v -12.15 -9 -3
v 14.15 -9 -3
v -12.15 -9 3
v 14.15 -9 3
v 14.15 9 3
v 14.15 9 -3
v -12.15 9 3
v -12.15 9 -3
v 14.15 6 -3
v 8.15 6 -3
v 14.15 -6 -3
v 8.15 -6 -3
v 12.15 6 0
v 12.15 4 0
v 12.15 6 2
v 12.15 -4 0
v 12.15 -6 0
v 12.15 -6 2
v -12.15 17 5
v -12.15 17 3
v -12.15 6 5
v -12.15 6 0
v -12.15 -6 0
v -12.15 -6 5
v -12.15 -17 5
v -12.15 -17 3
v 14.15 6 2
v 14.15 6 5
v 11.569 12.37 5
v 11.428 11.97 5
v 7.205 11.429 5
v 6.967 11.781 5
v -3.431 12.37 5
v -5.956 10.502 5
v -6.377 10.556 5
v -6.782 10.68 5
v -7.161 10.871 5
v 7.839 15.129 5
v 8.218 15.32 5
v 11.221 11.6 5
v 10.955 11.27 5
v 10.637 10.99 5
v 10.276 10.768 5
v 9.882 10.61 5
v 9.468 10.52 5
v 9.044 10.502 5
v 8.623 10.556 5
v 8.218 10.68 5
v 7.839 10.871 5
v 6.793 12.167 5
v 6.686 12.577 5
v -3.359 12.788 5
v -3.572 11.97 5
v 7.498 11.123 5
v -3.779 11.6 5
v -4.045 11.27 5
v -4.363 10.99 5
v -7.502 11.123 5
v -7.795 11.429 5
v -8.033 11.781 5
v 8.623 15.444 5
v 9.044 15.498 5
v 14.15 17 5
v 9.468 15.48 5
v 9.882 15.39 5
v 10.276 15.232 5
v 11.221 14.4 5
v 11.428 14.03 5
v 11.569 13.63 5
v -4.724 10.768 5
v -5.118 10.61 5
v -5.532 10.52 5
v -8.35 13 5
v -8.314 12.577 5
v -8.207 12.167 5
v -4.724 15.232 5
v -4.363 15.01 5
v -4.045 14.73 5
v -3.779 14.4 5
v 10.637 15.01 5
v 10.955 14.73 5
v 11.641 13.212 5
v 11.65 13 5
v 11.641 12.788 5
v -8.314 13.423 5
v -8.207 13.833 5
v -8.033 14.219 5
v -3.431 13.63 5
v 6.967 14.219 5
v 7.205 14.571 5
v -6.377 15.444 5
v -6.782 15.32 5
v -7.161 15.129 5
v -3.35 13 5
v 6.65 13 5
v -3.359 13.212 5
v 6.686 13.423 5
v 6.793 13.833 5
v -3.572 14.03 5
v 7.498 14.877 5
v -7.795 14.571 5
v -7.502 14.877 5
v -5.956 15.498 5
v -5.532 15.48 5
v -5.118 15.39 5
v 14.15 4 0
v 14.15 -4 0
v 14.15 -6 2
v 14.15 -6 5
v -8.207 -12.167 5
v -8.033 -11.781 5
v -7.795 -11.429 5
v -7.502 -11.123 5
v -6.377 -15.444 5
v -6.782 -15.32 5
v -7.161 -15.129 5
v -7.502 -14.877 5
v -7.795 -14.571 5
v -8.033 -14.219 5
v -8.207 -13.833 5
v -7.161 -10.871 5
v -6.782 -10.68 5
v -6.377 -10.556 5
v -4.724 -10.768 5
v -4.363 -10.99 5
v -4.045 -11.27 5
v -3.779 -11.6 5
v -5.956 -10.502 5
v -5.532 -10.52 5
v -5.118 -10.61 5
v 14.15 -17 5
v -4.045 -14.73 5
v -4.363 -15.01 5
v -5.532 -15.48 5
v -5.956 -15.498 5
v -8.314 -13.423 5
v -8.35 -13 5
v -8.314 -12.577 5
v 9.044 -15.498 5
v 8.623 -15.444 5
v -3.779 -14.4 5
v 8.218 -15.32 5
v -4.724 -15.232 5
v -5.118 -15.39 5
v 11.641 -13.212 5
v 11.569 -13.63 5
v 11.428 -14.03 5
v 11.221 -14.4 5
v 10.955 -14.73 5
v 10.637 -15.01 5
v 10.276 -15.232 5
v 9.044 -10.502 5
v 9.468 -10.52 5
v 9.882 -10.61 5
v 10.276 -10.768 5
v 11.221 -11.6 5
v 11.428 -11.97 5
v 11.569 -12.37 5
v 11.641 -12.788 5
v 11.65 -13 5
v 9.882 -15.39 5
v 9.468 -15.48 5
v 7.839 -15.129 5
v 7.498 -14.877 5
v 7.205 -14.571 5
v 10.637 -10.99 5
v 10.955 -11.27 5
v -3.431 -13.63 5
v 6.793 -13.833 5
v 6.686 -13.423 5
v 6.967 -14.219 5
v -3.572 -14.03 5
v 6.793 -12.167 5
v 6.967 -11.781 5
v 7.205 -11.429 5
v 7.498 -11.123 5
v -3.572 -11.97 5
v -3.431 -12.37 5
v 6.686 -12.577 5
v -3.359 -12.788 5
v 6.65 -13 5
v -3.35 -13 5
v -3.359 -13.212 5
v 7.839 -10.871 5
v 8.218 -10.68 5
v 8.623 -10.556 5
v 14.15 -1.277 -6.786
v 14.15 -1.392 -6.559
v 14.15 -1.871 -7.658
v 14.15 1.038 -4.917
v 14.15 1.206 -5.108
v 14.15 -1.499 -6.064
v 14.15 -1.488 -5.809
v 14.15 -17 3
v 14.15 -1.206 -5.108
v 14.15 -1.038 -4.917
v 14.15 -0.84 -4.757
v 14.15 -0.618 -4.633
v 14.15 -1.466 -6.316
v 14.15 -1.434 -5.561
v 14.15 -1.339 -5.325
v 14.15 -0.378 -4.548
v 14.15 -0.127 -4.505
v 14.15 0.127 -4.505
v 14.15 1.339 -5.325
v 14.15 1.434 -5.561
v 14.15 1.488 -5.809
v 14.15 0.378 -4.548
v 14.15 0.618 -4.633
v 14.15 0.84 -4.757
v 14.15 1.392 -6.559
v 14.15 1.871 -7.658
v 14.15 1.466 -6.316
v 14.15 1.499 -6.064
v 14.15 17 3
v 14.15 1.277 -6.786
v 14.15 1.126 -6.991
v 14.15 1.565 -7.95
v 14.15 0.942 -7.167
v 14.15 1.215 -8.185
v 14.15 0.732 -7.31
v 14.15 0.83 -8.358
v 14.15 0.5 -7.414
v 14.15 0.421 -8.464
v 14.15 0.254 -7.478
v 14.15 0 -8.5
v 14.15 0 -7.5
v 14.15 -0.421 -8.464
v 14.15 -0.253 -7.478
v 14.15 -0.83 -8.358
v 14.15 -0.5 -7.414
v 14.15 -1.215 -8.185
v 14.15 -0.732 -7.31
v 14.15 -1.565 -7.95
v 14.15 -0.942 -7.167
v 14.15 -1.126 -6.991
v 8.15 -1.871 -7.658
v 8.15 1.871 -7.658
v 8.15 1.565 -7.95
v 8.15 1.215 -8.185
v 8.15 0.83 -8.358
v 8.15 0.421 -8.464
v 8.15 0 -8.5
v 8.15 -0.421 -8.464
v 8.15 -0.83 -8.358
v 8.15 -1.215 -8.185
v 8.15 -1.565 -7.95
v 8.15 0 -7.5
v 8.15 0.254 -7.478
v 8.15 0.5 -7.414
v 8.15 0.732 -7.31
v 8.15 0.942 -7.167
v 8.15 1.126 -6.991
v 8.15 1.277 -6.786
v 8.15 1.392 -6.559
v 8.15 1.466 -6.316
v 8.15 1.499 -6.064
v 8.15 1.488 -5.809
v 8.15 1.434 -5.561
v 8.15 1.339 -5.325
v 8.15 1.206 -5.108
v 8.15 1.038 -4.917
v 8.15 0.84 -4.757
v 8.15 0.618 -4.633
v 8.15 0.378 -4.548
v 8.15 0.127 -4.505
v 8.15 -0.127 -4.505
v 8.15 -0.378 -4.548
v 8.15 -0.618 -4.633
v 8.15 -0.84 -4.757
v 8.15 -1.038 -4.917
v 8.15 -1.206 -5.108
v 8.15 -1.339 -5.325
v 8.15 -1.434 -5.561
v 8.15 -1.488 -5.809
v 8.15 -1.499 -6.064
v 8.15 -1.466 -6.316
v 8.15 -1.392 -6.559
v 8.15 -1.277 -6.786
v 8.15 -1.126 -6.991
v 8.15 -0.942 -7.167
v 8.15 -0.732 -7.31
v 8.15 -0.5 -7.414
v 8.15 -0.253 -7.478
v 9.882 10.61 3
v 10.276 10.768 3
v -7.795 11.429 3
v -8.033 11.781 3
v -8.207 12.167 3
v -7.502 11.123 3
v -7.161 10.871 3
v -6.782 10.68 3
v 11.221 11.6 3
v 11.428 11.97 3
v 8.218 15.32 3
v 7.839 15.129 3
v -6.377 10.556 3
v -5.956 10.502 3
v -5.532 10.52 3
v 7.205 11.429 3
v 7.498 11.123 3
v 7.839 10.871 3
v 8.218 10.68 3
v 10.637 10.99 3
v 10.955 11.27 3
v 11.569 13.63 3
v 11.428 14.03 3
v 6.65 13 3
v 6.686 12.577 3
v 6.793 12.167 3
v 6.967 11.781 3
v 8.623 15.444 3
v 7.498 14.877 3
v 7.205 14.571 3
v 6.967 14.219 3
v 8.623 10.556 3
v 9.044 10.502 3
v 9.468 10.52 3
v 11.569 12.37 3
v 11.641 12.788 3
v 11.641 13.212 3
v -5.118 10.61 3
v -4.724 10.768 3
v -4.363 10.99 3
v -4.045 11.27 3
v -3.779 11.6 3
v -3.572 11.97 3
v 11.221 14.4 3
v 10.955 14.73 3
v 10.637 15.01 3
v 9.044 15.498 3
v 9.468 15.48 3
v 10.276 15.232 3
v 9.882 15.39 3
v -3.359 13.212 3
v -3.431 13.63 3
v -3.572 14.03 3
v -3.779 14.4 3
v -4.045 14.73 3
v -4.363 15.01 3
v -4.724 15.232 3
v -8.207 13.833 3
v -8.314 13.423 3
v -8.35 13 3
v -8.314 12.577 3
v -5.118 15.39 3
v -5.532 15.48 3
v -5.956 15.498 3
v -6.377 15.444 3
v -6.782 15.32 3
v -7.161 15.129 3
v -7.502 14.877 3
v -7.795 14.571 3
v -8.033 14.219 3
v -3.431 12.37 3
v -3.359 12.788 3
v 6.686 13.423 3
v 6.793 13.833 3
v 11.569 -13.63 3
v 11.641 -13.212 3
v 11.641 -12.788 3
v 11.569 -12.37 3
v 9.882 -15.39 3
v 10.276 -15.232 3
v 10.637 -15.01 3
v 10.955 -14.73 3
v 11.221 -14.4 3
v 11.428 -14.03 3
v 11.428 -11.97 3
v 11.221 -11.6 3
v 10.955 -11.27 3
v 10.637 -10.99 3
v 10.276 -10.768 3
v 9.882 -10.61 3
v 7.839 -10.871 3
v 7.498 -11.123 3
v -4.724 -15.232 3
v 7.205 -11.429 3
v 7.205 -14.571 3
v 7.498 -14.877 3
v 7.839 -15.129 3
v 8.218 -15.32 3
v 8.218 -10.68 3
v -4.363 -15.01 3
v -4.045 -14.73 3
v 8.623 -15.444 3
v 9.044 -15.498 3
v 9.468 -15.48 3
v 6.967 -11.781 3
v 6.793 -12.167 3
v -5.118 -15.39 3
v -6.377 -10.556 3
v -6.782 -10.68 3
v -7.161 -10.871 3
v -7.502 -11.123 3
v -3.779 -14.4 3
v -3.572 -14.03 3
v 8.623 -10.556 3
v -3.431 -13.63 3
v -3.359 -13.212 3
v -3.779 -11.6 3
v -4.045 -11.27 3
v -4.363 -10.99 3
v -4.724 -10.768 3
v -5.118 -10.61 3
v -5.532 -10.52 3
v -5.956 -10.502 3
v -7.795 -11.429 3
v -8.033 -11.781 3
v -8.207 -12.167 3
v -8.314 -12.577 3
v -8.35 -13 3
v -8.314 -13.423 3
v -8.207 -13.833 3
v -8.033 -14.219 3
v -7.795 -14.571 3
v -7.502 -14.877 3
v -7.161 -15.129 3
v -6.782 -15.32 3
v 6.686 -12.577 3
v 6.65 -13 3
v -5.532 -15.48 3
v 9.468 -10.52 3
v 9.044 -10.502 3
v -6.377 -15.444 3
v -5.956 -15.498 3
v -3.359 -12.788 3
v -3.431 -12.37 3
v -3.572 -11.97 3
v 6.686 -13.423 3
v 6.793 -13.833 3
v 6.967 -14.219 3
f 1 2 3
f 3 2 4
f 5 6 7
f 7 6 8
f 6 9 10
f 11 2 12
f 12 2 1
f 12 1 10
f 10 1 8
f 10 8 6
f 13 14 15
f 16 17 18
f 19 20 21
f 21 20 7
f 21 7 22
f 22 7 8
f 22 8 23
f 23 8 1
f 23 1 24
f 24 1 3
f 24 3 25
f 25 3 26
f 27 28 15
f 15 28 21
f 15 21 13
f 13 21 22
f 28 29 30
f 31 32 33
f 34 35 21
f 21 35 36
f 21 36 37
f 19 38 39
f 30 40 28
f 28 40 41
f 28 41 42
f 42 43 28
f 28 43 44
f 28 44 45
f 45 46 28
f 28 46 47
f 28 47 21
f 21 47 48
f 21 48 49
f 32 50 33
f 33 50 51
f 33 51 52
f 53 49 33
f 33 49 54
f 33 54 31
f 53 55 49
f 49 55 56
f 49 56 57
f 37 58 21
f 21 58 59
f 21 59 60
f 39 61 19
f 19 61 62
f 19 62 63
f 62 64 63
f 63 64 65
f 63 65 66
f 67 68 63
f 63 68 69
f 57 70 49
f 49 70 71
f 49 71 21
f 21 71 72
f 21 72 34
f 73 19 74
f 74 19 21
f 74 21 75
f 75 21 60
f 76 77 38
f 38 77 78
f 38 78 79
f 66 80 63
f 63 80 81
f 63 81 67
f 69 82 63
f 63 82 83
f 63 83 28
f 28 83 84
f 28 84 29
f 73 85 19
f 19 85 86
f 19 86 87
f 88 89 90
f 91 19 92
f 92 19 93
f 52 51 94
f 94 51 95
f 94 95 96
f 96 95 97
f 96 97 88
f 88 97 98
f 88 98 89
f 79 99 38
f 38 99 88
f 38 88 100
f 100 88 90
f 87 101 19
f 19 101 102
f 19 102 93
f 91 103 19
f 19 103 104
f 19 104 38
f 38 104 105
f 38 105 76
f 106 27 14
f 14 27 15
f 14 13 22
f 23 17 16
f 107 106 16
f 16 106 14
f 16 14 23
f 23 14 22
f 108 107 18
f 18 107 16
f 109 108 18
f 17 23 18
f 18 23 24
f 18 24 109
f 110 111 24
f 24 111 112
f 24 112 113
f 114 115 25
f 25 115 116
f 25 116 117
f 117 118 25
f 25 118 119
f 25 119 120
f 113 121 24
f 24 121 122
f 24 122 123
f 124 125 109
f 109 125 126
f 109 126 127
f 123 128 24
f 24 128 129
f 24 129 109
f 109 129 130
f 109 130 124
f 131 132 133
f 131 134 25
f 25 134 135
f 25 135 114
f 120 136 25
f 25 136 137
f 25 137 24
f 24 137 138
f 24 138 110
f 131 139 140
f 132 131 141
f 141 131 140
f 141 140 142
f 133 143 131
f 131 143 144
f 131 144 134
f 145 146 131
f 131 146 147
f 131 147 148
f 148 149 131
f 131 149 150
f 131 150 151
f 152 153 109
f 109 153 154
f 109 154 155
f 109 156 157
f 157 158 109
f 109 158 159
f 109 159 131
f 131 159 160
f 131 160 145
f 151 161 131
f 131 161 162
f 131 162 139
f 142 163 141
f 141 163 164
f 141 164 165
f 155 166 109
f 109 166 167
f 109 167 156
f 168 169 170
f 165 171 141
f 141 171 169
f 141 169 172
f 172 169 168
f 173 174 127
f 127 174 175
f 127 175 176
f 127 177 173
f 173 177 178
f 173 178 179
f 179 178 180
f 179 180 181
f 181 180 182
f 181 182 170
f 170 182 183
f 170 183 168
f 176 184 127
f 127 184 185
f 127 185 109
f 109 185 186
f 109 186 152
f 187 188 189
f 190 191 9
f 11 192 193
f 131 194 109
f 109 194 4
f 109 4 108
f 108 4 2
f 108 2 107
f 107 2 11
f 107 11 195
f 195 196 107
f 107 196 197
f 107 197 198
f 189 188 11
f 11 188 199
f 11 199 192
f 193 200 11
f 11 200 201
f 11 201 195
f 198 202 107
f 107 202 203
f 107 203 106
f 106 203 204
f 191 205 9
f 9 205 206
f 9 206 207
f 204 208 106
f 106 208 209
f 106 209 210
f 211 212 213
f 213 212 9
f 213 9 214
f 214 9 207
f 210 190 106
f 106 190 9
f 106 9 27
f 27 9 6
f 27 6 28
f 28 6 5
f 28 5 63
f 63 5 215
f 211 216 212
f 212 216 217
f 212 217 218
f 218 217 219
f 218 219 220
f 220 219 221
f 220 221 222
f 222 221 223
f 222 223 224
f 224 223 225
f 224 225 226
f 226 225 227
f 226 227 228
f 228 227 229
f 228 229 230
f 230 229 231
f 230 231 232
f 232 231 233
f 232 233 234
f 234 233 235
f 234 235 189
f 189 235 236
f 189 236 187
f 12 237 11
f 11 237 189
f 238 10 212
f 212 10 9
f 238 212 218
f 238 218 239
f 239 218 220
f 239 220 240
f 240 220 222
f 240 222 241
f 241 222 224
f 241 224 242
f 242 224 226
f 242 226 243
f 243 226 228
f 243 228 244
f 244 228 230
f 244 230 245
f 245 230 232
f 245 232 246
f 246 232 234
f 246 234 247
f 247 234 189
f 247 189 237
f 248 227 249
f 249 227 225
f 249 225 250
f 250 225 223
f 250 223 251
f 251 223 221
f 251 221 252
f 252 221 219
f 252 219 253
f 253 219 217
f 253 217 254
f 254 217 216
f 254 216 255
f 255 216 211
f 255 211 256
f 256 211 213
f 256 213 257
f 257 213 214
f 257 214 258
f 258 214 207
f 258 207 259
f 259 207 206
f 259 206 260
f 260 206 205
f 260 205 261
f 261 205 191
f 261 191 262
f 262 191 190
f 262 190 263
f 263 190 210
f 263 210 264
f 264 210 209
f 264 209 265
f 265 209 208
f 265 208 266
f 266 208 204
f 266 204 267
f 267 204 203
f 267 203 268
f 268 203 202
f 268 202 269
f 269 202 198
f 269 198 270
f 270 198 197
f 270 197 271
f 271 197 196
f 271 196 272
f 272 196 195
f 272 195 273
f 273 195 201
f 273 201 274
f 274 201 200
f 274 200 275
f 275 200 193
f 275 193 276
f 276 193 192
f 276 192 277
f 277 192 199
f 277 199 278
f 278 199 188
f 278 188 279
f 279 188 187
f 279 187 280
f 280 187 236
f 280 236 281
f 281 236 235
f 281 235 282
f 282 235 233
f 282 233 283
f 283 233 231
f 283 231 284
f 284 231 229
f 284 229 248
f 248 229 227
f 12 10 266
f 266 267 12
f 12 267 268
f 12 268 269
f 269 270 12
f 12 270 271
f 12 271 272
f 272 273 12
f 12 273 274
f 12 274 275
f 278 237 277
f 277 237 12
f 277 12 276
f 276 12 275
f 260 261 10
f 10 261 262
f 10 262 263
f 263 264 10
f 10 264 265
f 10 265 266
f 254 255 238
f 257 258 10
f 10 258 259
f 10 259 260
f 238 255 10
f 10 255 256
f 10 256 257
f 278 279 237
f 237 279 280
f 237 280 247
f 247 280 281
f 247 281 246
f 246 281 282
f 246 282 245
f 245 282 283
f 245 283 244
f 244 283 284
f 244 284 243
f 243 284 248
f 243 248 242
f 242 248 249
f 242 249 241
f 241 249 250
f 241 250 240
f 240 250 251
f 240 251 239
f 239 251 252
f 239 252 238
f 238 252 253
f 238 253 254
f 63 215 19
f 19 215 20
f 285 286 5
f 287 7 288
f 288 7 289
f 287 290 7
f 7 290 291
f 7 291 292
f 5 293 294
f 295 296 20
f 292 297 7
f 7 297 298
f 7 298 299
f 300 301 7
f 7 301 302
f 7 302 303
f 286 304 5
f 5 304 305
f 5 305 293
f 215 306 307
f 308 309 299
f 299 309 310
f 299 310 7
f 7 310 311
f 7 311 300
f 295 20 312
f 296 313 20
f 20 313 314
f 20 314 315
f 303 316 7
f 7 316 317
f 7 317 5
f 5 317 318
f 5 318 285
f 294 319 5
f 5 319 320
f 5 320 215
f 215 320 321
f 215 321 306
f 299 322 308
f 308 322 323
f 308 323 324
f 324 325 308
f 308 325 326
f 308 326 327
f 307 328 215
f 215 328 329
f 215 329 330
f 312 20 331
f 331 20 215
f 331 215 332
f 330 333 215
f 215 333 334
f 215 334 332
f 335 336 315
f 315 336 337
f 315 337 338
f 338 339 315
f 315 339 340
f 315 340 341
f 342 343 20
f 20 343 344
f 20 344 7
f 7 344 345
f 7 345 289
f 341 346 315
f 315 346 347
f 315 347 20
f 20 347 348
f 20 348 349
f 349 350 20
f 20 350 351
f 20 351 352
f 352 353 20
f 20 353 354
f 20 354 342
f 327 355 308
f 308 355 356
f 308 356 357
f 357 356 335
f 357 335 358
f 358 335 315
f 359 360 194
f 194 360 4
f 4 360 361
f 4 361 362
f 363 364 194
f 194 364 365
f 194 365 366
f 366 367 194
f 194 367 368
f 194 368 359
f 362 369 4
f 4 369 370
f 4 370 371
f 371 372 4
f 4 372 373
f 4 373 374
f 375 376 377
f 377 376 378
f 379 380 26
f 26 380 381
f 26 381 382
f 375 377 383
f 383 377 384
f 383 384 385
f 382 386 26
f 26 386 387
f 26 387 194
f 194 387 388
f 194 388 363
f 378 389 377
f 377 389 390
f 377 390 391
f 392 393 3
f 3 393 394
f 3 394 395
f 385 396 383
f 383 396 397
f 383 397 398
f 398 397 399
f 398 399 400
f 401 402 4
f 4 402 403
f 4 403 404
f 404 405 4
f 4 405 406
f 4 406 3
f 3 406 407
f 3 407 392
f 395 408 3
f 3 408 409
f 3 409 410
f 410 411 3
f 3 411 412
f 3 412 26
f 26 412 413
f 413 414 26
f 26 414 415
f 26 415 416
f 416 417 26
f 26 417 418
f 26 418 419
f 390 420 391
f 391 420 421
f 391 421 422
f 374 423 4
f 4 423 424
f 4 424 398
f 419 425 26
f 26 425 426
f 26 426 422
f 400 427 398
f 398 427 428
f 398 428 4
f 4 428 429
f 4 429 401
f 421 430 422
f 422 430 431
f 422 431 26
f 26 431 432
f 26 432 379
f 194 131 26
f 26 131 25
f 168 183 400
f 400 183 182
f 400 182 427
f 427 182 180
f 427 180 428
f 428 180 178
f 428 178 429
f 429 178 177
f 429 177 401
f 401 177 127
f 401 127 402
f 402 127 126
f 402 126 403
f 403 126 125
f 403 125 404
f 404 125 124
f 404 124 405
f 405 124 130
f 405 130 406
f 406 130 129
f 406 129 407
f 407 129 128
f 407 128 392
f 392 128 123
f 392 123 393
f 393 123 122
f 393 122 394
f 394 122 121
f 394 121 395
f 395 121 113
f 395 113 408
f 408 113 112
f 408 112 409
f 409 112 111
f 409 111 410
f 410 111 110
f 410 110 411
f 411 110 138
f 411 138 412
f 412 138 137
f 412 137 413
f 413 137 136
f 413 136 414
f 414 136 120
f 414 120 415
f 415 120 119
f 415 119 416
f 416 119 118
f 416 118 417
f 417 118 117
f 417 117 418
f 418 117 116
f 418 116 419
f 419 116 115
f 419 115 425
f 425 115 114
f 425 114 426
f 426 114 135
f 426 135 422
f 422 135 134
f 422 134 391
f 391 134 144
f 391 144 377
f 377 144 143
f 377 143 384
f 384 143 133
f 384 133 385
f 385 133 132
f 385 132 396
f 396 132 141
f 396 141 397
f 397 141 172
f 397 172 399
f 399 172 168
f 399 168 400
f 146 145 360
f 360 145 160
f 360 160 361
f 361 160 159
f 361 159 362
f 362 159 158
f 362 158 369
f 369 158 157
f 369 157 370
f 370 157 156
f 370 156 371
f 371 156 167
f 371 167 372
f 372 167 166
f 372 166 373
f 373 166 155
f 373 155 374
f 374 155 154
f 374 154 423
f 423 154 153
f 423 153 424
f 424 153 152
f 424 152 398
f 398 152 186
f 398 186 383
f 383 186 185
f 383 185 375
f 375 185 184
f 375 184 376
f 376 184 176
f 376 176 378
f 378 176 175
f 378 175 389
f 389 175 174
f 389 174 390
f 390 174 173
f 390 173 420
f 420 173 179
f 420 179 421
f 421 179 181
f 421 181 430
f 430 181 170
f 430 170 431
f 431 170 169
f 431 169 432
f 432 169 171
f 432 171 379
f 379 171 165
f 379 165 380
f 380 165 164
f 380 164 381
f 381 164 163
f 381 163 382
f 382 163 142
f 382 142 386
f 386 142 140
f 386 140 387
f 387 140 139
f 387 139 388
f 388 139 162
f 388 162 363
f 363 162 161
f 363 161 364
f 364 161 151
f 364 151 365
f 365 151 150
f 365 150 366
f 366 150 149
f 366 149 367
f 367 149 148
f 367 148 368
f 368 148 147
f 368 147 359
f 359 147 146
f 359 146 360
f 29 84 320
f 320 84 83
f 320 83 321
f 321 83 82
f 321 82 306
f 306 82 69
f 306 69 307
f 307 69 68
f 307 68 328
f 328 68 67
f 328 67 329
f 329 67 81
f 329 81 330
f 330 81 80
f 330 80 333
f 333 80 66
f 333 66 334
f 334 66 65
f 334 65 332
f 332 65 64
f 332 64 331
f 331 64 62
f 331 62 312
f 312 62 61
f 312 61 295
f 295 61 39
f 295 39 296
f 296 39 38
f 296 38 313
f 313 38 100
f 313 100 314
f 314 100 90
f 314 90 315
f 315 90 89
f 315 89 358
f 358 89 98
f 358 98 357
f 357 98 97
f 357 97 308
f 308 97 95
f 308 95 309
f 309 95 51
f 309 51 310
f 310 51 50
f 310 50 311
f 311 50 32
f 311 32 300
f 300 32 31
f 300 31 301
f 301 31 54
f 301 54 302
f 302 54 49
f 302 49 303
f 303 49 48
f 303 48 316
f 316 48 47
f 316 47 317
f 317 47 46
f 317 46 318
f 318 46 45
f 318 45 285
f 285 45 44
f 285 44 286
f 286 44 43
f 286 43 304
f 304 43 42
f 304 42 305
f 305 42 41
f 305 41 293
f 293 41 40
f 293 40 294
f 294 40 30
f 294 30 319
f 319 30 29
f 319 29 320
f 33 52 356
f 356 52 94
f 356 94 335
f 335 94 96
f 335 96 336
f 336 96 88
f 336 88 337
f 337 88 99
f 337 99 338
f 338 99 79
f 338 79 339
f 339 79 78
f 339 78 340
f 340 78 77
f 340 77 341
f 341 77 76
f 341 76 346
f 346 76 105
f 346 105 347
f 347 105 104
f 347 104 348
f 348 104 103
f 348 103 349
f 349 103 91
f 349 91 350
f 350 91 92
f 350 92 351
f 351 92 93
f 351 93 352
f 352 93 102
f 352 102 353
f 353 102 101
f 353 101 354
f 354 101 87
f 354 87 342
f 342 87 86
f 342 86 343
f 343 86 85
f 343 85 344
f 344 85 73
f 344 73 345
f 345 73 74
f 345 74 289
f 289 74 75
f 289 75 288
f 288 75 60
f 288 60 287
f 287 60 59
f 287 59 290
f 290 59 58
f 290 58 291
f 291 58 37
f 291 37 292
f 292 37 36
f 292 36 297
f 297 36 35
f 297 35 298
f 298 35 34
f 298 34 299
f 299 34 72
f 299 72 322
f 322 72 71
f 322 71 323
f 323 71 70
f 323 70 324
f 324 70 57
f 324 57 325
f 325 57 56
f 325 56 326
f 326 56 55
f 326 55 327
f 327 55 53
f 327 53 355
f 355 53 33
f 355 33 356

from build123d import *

# Parameters (mm, degrees)
SKETCH_1_W          = 24.3
SKETCH_1_H          = 3
EXTRUDE_1_DEPTH     = 5
EXTRUDE_1_2_DEPTH   = 5
SKETCH_2_W          = 24.3
SKETCH_2_H          = 18
EXTRUDE_2_DEPTH     = 3
EXTRUDE_3_DEPTH     = 2
EXTRUDE_5_DEPTH     = 6
SKETCH_7_W          = 2
SKETCH_7_H          = 8
EXTRUDE_6_DEPTH     = 26.3
SKETCH_8_R          = 2.5
CUT_EXTRUDE_2_DEPTH = 2


with BuildPart() as part:
    # Эскиз1 → Бобышка-Вытянуть1 (new body)
    with BuildSketch(Plane.XY):
        with Locations((0, 7.5)):
            Rectangle(SKETCH_1_W, SKETCH_1_H)
    extrude(amount=EXTRUDE_1_DEPTH)



with BuildPart() as body_2:
    # Эскиз1 → Extrude 1 2 (new body)
    with BuildSketch(Plane.XY):
        with Locations((0, -7.5)):
            Rectangle(SKETCH_1_W, SKETCH_1_H)
    extrude(amount=EXTRUDE_1_2_DEPTH)


with BuildPart() as body_3:
    # Эскиз2 → Бобышка-Вытянуть2 (new body)
    with BuildSketch(Plane(origin=(0, 0, 0), x_dir=(-1, 0, 0), z_dir=(0, 0, -1))):
        Rectangle(SKETCH_2_W, SKETCH_2_H)
    extrude(amount=EXTRUDE_2_DEPTH)


with BuildPart() as part_1:
    add(part.part)

    add(body_2.part)  # Бобышка-Вытянуть3 merges body 2

    add(body_3.part)  # Бобышка-Вытянуть3 merges body 3
    # Эскиз3 → Бобышка-Вытянуть3 (add)
    with BuildSketch(Plane(origin=(12.15, 0, 0), x_dir=(0, 0, -1), z_dir=(1, 0, 0))):
        Polygon((-5, 6), (-5, 9), (3, 9), (3, -9), (-5, -9), (-5, -6), (-2, -6), (0, -4), (0, 4), (-2, 6), align=None)
    extrude(amount=EXTRUDE_3_DEPTH)

    # Эскиз6 → Бобышка-Вытянуть5 (add)
    with BuildSketch(Plane(origin=(14.15, 0, 0), x_dir=(0, 0, -1), z_dir=(1, 0, 0))):
        with BuildLine():
            Line((7.6583166, 1.870824966), (3, 6))
            Line((3, 6), (3, 0))
            Line((3, 0), (3.5, 0))
            ThreePointArc((3.5, 0), (4.974278668, 2.279889416), (7.6583166, 1.870824966))
        make_face()
        with BuildLine():
            ThreePointArc((8.5, 0), (8.279889416, 1.025721332), (7.6583166, 1.870824966))
            ThreePointArc((7.6583166, 1.870824966), (4.974278668, 2.279889416), (3.5, 0))
            Line((3.5, 0), (4.5, 0))
            ThreePointArc((4.5, 0), (6, 1.5), (7.5, 0))
            Line((7.5, 0), (8.5, 0))
        make_face()
        with BuildLine():
            ThreePointArc((7.6583166, -1.870824966), (8.279889416, -1.025721332), (8.5, 0))
            Line((8.5, 0), (7.5, 0))
            ThreePointArc((7.5, 0), (6, -1.5), (4.5, 0))
            Line((4.5, 0), (3.5, 0))
            ThreePointArc((3.5, 0), (4.974278668, -2.279889416), (7.6583166, -1.870824966))
        make_face()
        with BuildLine():
            Line((3.5, 0), (3, 0))
            Line((3, 0), (3, -6))
            Line((3, -6), (7.6583166, -1.870824966))
            ThreePointArc((7.6583166, -1.870824966), (4.974278668, -2.279889416), (3.5, 0))
        make_face()
    extrude(amount=-EXTRUDE_5_DEPTH)

    # Эскиз7 → Бобышка-Вытянуть6 (add)
    with BuildSketch(Plane(origin=(14.15, 0, 0), x_dir=(0, 0, -1), z_dir=(1, 0, 0))):
        with Locations((-4, 13)):
            Rectangle(SKETCH_7_W, SKETCH_7_H)
        with Locations((-4, -13)):
            Rectangle(SKETCH_7_W, SKETCH_7_H)
    extrude(amount=-EXTRUDE_6_DEPTH)

    # Эскиз8 → Вырез-Вытянуть2 (cut)
    with BuildSketch(Plane(origin=(0, 0, 3), x_dir=(-1, 0, 0), z_dir=(0, 0, -1))):
        with Locations((5.85, -13)):
            Circle(SKETCH_8_R)
        with Locations((-9.15, -13)):
            Circle(SKETCH_8_R)
        with Locations((-9.15, 13)):
            Circle(SKETCH_8_R)
        with Locations((5.85, 13)):
            Circle(SKETCH_8_R)
    extrude(amount=-CUT_EXTRUDE_2_DEPTH, mode=Mode.SUBTRACT)


solid = part_1.part
